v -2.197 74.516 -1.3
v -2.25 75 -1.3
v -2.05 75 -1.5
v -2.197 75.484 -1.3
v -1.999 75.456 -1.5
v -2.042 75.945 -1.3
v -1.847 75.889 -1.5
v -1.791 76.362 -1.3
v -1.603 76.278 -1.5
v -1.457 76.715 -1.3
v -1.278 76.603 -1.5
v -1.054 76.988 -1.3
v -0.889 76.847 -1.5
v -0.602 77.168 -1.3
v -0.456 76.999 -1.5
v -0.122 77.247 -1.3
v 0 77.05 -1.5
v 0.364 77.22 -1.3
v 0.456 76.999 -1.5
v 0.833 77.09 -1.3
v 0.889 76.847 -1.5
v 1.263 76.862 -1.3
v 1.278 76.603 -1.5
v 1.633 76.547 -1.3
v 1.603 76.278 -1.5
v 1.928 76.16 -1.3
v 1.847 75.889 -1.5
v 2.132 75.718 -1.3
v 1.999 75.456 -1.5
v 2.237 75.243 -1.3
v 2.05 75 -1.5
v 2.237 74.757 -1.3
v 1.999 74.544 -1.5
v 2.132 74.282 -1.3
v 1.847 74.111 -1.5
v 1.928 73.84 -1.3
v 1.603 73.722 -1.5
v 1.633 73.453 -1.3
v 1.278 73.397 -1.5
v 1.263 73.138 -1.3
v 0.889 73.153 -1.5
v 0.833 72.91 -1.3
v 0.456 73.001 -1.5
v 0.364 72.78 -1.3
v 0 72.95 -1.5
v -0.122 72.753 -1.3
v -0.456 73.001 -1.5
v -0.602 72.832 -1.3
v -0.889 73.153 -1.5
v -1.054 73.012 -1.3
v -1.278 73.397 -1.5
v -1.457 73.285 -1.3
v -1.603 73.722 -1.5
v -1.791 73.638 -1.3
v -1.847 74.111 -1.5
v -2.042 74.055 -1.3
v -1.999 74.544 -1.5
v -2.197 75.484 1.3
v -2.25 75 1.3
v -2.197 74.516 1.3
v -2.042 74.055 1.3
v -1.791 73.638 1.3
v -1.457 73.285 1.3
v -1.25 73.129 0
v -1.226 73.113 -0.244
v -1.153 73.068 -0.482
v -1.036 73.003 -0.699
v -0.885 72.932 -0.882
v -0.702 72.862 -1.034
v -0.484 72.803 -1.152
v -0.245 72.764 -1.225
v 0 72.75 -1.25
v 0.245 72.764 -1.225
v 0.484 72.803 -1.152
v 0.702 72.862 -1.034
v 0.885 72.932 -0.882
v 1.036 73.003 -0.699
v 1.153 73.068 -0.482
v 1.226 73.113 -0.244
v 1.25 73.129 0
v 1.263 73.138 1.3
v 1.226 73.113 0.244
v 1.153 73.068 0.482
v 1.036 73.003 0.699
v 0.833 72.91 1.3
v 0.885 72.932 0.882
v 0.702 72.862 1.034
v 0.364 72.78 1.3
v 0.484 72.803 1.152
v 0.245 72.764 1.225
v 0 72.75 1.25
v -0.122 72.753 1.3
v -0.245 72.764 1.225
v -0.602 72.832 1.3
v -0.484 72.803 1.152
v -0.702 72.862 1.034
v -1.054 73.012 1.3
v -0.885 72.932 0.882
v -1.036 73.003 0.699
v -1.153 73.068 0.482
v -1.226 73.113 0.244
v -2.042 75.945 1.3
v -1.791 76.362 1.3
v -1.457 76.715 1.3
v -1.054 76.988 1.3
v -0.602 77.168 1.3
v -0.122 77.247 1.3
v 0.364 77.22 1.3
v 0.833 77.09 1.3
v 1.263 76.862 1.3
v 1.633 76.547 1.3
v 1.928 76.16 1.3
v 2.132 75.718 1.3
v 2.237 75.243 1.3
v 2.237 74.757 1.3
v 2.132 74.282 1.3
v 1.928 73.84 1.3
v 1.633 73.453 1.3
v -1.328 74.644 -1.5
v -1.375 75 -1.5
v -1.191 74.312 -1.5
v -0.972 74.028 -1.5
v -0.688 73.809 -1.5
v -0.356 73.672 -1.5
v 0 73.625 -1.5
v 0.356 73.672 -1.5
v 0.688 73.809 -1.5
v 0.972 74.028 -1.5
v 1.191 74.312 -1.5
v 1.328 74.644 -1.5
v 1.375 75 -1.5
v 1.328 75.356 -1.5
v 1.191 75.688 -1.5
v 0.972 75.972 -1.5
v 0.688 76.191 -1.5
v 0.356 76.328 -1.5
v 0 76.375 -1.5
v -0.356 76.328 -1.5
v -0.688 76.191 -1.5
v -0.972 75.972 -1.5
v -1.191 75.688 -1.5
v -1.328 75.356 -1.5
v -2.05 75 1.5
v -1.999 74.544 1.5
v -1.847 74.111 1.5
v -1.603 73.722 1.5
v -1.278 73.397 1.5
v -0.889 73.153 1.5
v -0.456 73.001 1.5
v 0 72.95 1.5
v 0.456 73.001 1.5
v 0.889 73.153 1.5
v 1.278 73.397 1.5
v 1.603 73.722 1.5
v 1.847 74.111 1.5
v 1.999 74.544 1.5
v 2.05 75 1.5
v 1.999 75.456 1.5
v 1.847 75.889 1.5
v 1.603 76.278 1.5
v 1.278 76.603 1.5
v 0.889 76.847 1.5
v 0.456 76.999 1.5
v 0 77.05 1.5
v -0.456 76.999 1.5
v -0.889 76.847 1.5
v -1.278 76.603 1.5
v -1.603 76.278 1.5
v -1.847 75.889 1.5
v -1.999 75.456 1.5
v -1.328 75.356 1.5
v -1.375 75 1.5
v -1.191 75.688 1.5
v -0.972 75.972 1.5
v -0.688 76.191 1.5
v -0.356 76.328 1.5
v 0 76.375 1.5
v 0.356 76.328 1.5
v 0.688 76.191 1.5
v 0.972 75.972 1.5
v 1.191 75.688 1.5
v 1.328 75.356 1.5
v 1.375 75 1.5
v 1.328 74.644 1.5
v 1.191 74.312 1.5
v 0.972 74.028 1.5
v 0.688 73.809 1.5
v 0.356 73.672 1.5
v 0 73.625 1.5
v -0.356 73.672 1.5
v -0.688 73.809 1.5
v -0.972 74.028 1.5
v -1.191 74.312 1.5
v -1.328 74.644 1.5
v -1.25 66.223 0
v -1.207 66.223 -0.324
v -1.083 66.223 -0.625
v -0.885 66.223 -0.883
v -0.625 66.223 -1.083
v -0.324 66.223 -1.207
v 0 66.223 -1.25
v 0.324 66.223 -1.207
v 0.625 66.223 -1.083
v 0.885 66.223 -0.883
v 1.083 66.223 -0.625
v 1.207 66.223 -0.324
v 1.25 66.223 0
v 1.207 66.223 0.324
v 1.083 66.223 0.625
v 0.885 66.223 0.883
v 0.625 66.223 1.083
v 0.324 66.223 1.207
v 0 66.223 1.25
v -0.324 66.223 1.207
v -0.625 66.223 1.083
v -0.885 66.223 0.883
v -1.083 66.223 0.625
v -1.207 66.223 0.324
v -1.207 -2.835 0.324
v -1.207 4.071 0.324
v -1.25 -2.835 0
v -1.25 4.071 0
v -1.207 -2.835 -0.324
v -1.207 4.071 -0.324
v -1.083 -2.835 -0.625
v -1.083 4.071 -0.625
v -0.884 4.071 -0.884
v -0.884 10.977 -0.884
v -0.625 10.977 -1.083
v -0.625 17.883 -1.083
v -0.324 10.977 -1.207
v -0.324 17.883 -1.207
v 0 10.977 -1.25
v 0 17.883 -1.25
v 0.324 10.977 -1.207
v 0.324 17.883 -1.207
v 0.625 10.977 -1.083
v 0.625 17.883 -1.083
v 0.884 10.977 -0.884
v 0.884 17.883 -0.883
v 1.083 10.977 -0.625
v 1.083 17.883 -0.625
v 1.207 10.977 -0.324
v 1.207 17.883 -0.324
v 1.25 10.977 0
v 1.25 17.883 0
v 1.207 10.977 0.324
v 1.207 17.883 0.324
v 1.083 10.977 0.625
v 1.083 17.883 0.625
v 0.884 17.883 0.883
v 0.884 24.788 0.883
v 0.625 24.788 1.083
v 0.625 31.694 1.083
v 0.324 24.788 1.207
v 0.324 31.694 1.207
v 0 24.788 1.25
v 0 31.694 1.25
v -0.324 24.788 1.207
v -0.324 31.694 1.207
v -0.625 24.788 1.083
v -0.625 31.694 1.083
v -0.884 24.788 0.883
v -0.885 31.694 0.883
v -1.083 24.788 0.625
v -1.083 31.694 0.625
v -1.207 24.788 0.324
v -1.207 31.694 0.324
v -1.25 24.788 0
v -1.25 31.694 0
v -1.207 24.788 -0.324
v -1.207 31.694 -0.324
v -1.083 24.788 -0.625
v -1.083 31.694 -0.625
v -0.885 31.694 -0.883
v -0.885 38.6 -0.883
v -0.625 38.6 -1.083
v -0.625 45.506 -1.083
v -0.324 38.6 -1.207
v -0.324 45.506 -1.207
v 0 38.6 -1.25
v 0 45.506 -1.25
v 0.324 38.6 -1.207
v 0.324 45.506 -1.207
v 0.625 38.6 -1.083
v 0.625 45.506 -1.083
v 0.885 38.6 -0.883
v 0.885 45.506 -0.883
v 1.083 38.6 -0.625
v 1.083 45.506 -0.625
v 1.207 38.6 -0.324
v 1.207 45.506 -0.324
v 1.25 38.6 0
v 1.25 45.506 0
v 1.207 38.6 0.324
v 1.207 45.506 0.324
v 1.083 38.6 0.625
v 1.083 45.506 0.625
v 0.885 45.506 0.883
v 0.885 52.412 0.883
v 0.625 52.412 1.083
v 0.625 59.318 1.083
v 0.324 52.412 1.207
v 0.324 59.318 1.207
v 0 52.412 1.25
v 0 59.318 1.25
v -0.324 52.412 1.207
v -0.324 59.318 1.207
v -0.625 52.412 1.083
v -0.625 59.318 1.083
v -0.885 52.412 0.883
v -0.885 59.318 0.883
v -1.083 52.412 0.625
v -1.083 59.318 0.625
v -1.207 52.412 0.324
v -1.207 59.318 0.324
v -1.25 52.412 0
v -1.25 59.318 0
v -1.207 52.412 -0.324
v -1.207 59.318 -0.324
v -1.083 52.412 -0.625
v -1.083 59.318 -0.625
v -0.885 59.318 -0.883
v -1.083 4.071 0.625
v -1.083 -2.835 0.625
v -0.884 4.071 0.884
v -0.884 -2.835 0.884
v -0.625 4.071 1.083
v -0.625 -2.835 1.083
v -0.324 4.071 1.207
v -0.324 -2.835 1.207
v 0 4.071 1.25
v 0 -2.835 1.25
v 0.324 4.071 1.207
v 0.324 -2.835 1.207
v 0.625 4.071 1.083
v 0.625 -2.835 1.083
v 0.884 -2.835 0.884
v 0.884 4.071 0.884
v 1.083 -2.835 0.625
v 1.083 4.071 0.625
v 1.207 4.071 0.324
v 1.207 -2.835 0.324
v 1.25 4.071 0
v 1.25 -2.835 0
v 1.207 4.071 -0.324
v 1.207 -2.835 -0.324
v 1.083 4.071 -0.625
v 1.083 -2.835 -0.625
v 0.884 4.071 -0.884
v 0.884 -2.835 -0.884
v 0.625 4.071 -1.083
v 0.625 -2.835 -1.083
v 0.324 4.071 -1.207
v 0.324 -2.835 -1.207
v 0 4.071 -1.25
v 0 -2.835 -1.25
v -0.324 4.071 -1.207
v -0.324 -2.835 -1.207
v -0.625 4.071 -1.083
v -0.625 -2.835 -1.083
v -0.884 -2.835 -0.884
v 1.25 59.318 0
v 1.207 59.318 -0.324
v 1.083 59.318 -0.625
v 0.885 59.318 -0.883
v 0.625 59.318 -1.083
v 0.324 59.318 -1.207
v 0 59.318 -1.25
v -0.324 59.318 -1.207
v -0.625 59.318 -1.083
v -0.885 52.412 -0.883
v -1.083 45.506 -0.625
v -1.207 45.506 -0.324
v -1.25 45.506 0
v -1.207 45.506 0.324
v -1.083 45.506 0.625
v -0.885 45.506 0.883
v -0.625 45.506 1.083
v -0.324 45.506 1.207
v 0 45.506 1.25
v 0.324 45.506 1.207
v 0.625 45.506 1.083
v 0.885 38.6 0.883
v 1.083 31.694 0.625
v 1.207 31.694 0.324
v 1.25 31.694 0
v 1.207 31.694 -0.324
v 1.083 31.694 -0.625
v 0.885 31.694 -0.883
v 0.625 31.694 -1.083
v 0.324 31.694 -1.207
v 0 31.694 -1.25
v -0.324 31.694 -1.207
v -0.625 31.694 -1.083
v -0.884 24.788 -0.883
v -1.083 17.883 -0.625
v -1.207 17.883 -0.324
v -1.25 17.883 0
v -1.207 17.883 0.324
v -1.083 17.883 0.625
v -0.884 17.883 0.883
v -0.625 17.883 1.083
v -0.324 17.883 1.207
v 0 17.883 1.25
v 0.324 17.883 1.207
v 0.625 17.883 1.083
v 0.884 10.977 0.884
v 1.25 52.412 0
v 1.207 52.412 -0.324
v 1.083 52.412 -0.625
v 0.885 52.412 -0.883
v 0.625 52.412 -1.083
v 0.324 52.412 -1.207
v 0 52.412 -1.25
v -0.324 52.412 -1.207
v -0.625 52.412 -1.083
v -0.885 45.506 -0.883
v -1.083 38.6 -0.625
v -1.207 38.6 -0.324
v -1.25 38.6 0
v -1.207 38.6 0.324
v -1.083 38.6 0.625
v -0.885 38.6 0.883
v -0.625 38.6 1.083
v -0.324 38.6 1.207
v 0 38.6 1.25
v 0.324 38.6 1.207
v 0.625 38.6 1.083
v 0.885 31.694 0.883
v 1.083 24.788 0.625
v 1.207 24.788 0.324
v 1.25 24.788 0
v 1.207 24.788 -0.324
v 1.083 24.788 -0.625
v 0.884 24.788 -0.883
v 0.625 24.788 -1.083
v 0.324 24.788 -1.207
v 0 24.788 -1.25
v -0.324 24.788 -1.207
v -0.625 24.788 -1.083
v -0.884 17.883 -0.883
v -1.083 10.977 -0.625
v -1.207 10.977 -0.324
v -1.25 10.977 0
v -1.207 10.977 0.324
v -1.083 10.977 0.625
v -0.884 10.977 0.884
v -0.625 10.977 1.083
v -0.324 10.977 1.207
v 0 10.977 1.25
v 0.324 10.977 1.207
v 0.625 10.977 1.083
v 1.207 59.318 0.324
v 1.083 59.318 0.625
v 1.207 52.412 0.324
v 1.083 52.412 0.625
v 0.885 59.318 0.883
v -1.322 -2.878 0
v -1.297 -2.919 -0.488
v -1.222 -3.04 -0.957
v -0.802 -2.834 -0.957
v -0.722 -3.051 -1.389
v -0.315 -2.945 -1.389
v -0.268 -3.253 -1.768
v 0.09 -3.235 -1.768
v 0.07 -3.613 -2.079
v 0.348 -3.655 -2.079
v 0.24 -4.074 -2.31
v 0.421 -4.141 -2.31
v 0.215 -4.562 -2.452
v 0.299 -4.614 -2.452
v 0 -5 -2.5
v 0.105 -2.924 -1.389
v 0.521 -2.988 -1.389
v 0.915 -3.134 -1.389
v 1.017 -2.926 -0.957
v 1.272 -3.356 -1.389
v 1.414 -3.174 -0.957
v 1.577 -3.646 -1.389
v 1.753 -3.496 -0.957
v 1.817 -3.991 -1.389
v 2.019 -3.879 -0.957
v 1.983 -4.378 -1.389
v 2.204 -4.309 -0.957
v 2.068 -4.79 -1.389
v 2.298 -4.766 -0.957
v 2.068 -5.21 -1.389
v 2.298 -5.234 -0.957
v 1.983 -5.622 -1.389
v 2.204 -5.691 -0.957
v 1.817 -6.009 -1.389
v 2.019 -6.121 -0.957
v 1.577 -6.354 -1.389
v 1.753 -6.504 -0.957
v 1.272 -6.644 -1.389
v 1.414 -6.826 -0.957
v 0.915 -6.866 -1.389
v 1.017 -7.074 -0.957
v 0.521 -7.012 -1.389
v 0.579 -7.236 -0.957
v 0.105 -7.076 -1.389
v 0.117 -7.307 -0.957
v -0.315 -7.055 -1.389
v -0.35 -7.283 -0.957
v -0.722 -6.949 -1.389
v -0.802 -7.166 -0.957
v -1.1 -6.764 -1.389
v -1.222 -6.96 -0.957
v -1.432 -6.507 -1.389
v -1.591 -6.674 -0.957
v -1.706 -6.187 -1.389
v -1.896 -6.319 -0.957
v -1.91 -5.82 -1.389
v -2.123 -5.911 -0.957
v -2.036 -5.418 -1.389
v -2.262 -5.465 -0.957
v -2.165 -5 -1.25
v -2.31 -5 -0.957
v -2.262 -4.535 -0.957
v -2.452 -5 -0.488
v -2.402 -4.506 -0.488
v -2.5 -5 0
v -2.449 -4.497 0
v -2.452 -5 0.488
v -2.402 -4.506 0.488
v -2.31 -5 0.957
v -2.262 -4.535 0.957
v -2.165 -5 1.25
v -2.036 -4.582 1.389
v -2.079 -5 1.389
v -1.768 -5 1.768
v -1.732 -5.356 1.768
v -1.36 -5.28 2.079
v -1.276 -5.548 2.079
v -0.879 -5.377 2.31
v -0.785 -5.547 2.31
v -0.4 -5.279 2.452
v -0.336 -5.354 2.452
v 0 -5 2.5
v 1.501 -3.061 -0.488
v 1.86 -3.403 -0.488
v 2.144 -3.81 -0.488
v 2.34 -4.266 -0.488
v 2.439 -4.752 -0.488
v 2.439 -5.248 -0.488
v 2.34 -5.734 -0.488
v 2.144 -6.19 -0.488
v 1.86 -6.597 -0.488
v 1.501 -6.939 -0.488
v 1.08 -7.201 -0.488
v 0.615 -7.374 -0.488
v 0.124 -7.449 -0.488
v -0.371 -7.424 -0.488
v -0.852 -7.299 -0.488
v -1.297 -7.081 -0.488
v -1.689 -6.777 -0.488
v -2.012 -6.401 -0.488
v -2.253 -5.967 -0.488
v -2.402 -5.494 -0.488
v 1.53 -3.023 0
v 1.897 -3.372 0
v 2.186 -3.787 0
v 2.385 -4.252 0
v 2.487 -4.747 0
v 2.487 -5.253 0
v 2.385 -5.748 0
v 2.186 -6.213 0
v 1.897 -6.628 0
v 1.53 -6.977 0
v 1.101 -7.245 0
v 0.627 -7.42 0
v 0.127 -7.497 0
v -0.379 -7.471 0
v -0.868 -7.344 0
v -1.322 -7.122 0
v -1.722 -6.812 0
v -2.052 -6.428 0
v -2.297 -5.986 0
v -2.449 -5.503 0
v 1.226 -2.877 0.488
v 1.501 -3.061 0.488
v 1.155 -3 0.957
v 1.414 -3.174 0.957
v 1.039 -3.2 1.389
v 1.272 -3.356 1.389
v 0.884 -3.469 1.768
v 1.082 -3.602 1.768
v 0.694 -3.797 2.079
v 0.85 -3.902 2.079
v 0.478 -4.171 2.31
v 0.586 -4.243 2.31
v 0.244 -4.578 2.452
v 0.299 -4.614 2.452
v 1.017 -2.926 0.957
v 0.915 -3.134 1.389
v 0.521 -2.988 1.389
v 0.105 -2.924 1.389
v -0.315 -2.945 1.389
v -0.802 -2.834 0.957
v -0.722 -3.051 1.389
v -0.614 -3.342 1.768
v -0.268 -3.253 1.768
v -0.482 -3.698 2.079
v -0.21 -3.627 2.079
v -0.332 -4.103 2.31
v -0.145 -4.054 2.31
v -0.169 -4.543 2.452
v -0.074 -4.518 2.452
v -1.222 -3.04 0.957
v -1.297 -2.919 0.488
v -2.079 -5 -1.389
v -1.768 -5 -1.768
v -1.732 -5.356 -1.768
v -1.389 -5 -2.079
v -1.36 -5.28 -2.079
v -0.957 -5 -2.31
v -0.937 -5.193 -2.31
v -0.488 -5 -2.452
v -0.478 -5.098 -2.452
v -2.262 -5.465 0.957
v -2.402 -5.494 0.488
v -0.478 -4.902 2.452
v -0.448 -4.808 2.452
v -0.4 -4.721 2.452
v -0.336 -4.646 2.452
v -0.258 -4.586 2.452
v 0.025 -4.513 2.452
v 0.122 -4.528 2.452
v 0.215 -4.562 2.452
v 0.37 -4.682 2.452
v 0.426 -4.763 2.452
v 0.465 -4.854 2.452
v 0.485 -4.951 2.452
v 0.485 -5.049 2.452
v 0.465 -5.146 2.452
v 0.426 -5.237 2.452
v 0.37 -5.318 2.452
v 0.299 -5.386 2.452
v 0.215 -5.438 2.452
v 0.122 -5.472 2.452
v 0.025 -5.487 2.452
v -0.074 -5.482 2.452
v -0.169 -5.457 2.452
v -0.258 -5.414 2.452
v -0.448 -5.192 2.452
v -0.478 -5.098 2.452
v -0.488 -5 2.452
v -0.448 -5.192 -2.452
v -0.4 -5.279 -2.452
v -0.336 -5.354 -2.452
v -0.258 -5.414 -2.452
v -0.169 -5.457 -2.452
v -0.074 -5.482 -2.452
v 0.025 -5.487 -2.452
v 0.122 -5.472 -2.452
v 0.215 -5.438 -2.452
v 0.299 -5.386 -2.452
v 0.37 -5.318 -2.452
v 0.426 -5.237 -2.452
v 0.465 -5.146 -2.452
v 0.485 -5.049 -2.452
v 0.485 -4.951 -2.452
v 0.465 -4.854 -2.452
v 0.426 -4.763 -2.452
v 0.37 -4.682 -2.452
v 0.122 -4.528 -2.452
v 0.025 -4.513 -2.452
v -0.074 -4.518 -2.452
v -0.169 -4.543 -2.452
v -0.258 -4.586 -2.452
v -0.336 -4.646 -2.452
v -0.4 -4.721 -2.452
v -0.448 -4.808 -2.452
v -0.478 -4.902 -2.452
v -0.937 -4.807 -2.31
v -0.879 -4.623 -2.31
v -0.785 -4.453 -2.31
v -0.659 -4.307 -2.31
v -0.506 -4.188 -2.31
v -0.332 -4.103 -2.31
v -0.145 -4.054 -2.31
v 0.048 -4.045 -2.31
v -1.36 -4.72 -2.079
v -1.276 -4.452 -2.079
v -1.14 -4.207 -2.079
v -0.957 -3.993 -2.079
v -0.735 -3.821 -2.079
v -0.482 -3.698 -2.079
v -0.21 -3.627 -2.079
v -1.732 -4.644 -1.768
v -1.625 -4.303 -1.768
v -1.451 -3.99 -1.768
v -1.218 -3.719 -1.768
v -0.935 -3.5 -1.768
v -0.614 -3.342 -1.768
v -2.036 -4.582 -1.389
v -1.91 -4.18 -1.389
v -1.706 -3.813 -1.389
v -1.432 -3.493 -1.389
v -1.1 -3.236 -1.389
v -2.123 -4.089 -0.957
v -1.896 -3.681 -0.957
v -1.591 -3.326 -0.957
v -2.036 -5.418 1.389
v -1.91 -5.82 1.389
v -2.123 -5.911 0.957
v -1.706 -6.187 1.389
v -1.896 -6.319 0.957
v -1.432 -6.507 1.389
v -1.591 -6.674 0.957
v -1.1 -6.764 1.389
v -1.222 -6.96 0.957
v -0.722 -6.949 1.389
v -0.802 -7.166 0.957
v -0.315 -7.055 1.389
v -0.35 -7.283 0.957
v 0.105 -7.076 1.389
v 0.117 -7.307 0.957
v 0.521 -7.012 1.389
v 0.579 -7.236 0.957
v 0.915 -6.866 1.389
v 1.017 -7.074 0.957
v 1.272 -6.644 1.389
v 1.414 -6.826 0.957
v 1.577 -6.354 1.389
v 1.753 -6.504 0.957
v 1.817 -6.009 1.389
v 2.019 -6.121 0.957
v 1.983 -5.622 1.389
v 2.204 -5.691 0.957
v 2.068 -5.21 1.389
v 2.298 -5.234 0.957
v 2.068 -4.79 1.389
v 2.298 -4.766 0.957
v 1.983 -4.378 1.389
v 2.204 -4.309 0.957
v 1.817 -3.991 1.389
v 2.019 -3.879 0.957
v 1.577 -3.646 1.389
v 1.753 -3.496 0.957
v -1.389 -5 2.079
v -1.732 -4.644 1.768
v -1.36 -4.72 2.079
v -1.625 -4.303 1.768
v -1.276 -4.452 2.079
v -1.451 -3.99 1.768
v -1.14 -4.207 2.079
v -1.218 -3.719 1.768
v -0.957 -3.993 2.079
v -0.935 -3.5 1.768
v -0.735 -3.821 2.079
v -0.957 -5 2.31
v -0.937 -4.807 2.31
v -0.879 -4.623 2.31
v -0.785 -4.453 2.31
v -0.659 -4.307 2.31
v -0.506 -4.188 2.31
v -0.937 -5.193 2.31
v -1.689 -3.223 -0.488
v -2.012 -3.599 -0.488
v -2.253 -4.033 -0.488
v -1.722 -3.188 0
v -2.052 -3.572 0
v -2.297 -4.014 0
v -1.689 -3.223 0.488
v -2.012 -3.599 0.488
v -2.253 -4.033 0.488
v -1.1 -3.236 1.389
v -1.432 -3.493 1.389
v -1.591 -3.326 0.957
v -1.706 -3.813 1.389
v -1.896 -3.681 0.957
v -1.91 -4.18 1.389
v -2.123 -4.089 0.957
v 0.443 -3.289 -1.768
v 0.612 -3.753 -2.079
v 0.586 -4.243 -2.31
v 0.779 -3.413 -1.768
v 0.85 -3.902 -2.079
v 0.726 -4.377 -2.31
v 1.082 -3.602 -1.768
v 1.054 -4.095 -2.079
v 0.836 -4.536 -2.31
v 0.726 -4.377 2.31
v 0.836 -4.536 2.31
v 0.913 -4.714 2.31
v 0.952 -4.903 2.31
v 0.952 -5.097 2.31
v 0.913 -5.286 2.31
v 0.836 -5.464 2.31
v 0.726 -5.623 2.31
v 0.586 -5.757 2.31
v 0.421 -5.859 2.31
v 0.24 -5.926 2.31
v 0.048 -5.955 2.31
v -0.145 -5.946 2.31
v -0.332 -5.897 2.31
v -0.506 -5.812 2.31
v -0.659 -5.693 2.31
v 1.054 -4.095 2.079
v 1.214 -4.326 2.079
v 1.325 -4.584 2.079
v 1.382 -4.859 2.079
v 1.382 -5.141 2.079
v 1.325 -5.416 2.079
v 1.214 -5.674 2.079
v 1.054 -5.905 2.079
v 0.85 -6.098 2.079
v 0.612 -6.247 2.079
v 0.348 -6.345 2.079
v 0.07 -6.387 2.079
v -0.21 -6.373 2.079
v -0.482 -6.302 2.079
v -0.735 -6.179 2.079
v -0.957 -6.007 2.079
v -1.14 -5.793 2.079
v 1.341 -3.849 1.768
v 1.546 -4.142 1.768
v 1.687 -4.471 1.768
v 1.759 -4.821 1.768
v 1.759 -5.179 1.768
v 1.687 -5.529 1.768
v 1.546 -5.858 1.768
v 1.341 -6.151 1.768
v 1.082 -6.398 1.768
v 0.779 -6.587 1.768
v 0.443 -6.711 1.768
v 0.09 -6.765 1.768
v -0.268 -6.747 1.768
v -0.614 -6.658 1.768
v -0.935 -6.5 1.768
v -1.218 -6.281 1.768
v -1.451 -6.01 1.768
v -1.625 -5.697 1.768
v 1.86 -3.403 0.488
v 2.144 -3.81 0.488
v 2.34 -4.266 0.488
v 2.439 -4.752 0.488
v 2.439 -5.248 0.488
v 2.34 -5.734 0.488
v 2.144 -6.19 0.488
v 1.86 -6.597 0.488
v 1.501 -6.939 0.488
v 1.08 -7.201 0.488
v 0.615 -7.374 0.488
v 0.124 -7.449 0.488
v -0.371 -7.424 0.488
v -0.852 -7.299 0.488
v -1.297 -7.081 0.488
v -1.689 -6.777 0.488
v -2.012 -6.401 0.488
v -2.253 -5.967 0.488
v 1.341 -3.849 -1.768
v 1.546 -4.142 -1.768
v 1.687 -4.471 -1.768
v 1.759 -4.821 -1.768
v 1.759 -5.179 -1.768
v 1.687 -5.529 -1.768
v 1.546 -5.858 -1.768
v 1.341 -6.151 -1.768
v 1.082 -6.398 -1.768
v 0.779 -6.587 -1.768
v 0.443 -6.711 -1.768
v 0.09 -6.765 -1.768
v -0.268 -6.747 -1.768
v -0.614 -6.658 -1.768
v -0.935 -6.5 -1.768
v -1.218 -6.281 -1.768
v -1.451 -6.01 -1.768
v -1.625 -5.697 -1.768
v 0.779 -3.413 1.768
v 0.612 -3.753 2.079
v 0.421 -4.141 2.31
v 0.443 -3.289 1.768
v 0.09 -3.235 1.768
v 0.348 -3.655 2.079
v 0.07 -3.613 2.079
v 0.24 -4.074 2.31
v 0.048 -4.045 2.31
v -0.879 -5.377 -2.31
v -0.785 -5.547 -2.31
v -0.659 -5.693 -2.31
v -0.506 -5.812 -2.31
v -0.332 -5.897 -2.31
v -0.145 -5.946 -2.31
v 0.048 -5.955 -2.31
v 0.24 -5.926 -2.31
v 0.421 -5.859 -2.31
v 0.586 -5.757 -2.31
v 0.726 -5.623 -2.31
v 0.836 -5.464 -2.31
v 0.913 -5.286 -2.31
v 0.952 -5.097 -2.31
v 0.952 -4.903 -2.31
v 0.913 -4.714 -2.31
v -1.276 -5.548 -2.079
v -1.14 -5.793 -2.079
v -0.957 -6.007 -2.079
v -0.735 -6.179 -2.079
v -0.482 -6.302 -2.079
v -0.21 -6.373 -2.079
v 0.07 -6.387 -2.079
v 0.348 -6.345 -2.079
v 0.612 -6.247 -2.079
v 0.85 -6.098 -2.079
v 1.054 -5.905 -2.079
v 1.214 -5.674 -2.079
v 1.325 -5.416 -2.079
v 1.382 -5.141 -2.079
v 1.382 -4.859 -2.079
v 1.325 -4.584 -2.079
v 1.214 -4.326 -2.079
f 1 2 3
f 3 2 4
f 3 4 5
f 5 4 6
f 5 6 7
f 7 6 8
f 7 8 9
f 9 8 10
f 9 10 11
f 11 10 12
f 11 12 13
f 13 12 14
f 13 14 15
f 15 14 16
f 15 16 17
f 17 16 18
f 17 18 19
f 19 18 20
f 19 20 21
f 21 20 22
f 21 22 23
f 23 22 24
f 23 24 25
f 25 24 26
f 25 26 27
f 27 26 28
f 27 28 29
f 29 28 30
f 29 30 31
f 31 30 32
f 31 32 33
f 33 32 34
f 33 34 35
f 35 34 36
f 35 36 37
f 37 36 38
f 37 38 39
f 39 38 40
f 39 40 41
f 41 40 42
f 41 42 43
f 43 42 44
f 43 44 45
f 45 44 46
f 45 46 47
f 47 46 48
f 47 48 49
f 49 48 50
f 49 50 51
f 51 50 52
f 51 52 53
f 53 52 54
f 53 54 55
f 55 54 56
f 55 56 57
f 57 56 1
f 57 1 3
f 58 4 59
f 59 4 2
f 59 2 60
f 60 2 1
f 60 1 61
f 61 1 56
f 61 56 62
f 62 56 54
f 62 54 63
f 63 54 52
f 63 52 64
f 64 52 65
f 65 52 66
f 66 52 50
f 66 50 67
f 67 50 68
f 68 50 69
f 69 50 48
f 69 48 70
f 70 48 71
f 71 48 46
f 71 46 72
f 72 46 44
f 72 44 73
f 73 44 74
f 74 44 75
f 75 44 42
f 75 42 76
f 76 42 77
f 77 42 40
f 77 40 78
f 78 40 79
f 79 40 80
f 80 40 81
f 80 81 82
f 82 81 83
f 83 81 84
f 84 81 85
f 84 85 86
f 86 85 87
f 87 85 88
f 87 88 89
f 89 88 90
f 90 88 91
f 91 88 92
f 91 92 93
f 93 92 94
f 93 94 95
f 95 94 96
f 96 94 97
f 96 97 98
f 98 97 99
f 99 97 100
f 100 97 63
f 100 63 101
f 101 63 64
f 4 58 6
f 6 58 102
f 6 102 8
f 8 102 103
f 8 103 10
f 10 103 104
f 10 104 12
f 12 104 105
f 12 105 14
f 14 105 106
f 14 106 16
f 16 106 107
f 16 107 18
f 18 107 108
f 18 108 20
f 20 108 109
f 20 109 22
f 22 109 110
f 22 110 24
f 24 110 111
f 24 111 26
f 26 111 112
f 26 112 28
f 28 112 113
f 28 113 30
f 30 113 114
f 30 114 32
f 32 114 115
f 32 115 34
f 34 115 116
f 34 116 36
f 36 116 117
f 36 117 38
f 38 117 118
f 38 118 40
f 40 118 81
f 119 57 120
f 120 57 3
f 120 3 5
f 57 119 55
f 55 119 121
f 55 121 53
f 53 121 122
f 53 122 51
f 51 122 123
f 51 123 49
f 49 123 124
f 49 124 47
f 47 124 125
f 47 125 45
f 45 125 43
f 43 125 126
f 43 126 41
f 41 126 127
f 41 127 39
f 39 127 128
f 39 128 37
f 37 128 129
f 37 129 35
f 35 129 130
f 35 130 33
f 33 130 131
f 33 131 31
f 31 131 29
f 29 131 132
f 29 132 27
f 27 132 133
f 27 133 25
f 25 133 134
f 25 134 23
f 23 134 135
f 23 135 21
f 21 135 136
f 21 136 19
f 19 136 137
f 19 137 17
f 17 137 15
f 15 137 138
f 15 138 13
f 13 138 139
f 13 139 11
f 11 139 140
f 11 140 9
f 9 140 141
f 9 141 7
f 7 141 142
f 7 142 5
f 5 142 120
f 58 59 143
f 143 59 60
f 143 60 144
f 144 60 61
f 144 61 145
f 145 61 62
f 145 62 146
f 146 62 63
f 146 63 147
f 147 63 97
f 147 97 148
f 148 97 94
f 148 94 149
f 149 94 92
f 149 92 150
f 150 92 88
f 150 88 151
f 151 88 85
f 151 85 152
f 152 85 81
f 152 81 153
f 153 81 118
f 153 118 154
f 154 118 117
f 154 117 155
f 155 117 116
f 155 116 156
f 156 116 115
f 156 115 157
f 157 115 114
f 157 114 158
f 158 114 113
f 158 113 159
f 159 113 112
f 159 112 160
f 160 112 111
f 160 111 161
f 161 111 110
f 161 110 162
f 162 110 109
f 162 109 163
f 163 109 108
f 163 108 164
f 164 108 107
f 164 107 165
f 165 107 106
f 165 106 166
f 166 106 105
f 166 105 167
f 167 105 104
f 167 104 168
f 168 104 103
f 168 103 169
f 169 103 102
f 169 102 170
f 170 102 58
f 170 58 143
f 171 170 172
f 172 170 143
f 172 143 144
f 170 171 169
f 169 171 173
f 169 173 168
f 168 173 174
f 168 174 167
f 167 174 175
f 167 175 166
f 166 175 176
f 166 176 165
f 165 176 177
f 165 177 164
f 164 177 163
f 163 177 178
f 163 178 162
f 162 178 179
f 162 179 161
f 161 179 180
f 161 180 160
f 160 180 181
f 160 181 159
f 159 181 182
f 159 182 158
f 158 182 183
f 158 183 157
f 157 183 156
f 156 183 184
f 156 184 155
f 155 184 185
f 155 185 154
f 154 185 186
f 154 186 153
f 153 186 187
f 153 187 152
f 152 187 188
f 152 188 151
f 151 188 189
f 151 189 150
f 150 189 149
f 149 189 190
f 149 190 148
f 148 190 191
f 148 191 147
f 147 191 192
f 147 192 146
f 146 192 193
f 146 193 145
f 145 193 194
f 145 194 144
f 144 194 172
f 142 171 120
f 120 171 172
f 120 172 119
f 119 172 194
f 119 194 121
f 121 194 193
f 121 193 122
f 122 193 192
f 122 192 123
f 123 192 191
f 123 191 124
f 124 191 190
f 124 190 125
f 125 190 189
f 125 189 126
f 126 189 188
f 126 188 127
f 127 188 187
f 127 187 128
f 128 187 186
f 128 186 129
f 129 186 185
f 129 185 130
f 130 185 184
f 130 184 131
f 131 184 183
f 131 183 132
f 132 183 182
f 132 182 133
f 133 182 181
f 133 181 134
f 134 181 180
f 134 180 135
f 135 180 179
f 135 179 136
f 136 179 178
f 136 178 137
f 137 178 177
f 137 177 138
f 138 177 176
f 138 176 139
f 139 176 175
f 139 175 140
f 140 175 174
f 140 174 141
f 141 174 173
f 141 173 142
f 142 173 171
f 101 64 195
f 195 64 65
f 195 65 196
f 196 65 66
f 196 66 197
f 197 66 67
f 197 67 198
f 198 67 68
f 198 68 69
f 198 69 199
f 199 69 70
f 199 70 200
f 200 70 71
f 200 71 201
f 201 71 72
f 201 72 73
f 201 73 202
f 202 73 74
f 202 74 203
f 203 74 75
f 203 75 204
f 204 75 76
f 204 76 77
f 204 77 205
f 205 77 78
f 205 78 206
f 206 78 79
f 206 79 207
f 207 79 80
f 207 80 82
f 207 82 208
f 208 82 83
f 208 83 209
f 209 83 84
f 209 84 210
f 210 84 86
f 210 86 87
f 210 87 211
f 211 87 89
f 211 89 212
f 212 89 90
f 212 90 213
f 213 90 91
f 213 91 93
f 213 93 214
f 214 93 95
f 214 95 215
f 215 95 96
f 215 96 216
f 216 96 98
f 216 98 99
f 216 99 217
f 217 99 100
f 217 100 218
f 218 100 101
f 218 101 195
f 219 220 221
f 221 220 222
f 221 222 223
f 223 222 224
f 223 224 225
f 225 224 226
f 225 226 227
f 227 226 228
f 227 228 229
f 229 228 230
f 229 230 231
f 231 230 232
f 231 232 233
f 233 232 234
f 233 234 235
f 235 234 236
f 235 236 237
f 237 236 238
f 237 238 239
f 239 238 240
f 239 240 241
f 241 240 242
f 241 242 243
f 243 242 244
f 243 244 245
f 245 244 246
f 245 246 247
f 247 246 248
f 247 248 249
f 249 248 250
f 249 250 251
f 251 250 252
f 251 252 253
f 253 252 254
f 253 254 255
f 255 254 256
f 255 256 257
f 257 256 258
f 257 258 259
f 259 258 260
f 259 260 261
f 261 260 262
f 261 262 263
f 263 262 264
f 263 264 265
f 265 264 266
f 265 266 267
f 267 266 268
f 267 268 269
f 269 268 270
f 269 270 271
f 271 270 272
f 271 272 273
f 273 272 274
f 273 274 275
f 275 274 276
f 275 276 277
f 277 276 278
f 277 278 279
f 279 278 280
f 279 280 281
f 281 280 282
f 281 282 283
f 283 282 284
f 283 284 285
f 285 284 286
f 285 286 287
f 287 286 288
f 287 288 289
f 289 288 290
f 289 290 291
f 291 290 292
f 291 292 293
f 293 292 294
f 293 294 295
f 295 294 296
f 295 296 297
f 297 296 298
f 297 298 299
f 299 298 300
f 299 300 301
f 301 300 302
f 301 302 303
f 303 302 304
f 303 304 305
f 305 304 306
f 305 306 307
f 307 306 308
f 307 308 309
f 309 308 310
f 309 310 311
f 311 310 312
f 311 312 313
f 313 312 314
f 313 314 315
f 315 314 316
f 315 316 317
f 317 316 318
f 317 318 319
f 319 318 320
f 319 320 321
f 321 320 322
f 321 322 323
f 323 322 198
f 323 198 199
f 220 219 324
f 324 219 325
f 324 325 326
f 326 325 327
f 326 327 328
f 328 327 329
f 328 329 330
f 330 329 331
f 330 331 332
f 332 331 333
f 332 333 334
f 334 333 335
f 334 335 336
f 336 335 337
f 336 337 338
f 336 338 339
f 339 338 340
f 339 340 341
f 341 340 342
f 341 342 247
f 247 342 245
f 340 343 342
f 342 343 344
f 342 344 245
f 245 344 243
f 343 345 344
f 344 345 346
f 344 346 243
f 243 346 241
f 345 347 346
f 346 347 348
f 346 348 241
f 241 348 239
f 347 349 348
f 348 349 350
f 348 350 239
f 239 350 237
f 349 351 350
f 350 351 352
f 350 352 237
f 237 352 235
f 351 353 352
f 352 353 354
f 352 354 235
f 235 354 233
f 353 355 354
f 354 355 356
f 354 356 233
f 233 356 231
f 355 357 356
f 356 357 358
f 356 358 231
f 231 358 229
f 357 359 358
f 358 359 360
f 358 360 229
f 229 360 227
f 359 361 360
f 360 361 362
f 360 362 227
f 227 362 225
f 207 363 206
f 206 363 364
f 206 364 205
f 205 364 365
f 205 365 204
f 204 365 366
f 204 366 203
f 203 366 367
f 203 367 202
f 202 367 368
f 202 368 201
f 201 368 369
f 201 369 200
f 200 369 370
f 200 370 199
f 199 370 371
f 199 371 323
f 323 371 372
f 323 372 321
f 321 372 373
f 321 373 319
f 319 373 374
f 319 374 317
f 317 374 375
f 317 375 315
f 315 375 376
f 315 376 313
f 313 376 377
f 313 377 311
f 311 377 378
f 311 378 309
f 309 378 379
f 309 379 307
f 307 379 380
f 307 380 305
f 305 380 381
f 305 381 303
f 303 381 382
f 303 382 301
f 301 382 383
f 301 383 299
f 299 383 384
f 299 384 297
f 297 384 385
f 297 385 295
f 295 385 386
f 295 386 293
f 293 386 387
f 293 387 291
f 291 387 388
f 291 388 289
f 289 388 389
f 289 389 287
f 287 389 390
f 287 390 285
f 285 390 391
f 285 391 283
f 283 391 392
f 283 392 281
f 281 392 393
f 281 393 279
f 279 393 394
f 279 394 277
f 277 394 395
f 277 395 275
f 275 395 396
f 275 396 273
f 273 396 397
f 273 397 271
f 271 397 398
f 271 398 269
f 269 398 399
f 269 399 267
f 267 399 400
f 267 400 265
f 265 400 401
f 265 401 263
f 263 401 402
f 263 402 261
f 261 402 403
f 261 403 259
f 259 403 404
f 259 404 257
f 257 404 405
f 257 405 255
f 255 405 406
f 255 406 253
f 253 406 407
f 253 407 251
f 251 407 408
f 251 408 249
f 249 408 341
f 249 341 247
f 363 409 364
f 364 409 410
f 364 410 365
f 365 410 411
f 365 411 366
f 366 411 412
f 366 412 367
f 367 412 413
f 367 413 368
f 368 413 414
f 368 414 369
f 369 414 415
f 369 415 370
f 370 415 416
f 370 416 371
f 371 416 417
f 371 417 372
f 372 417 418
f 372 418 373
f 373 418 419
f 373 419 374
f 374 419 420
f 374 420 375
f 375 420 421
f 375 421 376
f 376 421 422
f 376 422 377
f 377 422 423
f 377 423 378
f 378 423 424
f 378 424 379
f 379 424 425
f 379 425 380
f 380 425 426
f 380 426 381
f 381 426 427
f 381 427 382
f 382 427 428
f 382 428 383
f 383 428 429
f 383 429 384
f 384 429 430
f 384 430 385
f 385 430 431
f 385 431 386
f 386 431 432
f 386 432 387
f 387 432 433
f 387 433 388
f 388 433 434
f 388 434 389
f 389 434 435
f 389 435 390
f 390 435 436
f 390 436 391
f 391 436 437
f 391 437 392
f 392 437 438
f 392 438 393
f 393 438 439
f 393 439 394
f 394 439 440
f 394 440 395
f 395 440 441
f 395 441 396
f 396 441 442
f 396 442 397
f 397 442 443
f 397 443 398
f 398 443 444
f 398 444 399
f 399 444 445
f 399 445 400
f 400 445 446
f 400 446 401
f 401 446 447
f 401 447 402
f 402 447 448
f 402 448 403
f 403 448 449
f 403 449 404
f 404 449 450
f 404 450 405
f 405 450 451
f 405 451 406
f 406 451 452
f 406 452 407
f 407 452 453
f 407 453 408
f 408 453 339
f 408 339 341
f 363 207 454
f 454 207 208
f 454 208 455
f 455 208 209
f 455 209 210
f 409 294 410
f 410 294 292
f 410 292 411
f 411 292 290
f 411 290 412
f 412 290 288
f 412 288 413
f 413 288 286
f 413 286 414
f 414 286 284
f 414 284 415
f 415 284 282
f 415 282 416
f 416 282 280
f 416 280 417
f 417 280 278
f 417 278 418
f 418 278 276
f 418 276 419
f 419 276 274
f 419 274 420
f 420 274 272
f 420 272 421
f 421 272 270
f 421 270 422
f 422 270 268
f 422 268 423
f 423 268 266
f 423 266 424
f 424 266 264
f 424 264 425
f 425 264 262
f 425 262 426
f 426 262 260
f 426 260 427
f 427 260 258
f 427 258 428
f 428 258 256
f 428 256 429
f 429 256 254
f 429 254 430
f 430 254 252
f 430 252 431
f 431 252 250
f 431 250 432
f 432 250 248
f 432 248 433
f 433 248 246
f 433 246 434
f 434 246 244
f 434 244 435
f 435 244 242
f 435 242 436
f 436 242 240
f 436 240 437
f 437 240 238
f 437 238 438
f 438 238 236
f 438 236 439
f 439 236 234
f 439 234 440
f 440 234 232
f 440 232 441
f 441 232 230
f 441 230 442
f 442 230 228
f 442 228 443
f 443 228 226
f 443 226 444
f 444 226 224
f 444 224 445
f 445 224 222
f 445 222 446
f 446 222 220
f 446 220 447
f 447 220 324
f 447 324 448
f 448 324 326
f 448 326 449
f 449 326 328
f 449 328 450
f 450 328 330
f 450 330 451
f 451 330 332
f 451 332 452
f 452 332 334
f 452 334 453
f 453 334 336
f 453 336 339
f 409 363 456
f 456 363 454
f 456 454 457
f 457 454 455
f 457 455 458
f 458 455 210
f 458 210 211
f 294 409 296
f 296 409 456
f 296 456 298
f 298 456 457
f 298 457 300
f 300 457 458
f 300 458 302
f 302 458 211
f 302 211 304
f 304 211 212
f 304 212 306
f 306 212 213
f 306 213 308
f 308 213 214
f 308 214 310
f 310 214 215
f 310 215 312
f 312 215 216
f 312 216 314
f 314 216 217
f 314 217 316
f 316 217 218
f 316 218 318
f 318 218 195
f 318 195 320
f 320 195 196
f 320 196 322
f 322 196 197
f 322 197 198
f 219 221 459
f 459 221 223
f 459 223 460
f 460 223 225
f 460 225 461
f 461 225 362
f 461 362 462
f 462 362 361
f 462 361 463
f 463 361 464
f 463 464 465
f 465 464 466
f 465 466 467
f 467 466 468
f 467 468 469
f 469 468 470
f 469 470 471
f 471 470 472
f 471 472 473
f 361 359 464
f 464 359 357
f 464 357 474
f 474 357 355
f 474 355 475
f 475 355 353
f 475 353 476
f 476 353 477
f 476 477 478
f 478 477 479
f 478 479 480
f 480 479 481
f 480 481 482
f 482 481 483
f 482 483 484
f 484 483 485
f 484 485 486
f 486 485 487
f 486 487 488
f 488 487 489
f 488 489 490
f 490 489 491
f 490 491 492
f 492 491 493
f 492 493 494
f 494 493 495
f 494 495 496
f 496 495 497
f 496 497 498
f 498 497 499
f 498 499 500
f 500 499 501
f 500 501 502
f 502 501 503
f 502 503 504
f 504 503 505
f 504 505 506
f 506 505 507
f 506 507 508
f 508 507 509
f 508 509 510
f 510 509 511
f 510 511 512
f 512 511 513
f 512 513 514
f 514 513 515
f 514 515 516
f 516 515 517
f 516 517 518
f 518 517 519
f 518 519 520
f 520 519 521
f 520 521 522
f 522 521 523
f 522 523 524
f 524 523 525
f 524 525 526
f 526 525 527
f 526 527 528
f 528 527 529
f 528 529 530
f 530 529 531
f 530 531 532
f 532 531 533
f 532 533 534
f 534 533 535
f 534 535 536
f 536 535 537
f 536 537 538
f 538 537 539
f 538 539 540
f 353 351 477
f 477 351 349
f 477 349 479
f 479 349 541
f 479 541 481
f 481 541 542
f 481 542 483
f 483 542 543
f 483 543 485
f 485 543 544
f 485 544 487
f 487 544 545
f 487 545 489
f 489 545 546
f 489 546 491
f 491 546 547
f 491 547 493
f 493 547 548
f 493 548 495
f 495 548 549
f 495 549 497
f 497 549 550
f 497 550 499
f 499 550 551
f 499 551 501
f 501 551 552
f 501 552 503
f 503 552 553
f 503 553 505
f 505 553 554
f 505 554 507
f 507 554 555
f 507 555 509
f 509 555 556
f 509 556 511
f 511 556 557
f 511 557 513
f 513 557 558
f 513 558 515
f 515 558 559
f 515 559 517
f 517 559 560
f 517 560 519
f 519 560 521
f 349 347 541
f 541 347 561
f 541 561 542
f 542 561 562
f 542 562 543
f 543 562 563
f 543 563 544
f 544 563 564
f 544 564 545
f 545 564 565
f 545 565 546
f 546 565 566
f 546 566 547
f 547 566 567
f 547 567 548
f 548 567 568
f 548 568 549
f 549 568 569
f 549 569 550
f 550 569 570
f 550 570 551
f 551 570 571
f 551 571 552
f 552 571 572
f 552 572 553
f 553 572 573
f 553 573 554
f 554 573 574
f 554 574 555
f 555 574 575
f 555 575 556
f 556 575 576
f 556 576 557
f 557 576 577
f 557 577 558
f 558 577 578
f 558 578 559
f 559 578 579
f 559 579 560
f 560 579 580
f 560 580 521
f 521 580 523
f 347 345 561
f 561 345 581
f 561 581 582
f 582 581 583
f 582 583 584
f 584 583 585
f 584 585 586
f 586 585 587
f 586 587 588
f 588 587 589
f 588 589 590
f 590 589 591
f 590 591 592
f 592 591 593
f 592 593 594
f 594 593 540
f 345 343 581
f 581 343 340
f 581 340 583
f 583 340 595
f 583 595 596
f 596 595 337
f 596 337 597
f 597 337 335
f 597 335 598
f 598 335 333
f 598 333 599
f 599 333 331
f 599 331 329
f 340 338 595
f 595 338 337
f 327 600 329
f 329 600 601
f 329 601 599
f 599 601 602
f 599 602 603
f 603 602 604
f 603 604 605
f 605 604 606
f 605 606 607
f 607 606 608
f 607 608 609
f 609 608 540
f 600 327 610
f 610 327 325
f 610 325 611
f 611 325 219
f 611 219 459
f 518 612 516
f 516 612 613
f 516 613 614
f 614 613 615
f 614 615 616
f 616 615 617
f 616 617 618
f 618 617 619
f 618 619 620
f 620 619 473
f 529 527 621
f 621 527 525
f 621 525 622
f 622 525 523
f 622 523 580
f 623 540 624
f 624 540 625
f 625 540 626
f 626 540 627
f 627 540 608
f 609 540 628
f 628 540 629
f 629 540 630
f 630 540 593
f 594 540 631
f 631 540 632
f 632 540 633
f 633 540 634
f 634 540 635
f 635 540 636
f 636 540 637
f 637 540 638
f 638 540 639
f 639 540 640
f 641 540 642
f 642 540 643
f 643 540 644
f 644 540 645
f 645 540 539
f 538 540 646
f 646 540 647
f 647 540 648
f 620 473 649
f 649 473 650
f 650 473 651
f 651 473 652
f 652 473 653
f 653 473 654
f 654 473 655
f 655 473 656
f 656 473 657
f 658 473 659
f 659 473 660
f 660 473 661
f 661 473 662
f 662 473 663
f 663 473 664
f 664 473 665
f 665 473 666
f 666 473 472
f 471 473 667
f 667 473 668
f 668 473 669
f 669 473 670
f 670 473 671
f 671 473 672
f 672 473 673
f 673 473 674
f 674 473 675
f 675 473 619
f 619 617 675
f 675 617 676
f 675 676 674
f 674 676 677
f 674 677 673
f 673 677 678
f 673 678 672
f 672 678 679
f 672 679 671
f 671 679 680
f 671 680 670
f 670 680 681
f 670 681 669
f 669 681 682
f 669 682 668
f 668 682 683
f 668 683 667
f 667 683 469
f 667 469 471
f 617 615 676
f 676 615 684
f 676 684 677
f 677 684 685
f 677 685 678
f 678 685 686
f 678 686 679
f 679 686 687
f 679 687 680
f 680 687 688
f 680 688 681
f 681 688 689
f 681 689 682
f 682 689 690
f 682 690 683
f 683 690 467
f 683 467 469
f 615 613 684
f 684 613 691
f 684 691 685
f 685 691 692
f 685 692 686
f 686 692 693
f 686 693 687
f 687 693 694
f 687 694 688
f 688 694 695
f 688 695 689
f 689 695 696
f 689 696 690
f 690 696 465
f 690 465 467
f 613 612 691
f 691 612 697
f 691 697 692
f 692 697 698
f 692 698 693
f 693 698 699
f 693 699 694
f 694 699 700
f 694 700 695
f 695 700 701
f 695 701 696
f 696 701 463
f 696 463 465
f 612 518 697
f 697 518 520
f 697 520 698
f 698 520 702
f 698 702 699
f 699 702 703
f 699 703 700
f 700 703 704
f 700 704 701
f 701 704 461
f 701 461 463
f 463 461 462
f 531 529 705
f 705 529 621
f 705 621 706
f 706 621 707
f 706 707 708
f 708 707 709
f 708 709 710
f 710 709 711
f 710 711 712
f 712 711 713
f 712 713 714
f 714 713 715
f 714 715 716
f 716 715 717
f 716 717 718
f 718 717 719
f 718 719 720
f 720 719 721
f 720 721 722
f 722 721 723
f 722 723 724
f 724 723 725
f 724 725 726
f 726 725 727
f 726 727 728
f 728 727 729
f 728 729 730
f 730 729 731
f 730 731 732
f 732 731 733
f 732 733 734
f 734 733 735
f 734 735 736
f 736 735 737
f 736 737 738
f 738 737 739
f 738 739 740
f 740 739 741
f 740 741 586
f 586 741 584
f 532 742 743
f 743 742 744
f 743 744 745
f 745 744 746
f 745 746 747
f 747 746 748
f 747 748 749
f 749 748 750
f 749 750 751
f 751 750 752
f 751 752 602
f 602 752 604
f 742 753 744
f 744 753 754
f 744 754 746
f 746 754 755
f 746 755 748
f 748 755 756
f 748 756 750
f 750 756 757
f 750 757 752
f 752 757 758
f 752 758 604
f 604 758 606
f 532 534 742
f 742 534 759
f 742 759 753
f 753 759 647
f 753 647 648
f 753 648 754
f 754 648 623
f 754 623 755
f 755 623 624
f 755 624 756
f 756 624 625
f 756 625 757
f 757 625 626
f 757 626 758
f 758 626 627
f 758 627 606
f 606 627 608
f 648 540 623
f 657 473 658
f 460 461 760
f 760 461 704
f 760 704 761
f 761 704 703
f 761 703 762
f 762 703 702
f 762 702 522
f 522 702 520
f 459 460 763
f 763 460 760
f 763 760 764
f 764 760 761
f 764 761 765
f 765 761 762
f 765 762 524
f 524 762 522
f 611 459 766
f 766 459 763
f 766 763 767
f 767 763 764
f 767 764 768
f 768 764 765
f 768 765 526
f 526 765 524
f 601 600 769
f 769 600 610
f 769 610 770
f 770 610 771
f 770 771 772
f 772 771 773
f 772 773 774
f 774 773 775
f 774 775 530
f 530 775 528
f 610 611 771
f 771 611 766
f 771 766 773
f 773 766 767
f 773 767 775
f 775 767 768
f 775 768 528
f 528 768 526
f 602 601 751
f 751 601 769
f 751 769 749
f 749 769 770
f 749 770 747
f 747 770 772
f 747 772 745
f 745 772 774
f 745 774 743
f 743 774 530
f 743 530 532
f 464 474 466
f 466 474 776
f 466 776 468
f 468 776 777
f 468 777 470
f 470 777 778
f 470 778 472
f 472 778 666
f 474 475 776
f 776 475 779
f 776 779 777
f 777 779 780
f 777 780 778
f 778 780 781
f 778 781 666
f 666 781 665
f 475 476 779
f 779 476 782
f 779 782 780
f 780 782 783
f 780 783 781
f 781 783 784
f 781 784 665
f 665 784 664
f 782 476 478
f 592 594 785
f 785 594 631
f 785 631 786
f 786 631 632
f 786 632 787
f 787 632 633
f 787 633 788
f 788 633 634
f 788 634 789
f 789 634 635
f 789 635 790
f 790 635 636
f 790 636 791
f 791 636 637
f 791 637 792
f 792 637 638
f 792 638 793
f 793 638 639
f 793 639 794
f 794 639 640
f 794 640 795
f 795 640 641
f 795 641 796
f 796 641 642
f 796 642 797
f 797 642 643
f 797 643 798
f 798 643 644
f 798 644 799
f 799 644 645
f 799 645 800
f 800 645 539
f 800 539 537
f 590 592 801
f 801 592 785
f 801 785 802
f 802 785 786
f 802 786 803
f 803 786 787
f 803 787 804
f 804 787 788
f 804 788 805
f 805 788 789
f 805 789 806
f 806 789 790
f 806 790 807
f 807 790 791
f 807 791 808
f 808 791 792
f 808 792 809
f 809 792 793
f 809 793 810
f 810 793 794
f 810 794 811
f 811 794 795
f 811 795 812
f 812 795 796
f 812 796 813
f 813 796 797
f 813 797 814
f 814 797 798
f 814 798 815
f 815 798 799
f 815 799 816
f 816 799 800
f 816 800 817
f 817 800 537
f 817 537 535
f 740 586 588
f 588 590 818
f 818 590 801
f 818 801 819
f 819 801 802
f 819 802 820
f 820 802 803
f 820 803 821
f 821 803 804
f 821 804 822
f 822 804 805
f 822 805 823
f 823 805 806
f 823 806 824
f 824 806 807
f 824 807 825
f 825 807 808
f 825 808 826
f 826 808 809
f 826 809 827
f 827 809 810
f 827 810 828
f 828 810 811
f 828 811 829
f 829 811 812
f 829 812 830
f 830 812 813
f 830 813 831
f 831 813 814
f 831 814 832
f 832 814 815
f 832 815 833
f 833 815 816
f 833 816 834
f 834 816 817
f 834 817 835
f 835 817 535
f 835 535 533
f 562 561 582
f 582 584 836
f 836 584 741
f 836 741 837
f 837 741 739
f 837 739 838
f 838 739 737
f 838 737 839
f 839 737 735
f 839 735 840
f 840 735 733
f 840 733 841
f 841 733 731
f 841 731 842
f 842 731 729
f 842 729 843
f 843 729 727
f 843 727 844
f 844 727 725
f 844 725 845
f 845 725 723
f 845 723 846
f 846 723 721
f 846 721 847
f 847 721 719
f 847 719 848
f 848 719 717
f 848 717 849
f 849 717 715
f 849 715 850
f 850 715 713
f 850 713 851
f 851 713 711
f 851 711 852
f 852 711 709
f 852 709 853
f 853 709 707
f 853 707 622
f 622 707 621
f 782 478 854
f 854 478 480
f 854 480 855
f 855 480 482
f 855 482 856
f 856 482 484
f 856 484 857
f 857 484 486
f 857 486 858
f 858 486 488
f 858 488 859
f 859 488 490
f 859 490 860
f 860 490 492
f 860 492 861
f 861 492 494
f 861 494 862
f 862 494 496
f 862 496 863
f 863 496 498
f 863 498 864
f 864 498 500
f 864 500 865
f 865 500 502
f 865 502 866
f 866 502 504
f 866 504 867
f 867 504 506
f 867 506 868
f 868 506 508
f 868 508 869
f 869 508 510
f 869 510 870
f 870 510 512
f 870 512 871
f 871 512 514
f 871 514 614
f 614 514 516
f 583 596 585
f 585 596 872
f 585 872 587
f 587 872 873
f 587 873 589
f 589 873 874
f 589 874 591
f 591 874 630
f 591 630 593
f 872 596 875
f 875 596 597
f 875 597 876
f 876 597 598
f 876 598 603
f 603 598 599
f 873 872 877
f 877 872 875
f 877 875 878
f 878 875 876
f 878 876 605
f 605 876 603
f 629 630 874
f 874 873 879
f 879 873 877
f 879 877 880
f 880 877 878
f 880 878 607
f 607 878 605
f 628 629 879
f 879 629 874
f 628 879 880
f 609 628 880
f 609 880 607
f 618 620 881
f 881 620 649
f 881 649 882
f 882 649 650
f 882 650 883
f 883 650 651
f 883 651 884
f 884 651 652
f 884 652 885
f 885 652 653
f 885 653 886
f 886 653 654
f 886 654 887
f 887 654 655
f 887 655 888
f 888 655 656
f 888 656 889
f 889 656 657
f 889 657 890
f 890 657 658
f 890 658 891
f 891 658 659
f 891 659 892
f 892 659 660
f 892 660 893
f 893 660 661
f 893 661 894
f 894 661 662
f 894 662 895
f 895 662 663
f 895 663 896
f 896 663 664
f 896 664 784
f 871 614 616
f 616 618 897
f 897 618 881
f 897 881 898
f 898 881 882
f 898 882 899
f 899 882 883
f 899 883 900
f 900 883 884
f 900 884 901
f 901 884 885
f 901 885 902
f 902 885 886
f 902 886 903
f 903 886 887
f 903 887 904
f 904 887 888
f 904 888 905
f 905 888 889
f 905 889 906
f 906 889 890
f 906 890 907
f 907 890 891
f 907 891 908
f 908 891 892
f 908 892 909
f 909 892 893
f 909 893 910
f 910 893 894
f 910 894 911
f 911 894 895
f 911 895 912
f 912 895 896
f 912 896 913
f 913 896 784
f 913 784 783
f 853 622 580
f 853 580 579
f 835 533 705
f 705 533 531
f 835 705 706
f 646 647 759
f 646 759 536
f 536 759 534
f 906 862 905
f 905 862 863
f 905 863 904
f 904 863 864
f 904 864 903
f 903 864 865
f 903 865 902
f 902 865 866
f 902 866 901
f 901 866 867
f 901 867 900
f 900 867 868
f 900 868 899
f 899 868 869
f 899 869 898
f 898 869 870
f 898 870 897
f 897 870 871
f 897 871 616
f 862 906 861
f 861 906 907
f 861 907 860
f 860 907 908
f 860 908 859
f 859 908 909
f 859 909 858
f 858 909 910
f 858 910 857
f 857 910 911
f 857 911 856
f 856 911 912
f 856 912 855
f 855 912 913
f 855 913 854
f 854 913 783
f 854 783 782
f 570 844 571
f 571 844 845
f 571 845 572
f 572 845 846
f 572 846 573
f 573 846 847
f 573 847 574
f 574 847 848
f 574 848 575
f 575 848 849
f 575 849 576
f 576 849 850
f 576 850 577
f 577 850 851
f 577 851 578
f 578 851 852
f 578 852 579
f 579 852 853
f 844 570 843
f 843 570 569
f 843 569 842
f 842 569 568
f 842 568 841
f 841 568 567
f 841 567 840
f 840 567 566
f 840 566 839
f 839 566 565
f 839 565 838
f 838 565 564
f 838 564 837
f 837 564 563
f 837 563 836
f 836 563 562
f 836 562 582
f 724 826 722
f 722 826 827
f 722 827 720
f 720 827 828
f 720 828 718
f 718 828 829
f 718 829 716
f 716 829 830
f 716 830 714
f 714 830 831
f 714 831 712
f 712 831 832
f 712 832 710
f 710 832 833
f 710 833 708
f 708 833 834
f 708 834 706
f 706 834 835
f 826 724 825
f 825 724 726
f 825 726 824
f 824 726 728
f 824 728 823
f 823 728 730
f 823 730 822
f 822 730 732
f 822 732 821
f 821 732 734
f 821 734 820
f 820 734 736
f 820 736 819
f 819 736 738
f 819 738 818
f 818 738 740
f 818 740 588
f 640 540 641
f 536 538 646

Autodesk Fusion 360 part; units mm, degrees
sketch "Sketch1" plane through (0, 0, 0) normal (0, 0, 1) x (1, 0, 0)
  circle A0 centre (0, 75) radius 1.375
  circle A1 centre (0, 75) radius 2.25
  line L0 (0, 72.75) -> (0, -5)
  circle A2 centre (0, -5) radius 2.5
  line L1 (0, -5) -> (0, -7.5)
  line L2 (1.25, 73.1292) -> (1.25, -2.8349)
  line L3 (-1.25, 73.1292) -> (-1.25, -2.8349)
  dimension "d1" = 2.75
  dimension "d2" = 4.5
  dimension "d3" = 80
  dimension "d4" = 5
revolve "Revolve1" add sketch "Sketch1" angle 360 about axis through (0, -5, 0) along (0, -1, 0) contours L0 A2 L1 picked at (1.6574, -4.8758)
revolve "Revolve2" add sketch "Sketch1" angle 360 about axis through (0, 72.75, 0) along (0, -1, 0) contours A1 L0 A2 L3
extrude "Extrude1" add sketch "Sketch1" along normal mid plane 3 contours A1
chamfer "Chamfer1" distance 0.2 angle 45 2 edges at (-2.0977, 74.1864, 1.5) (-2.0977, 75.8136, -1.5)
